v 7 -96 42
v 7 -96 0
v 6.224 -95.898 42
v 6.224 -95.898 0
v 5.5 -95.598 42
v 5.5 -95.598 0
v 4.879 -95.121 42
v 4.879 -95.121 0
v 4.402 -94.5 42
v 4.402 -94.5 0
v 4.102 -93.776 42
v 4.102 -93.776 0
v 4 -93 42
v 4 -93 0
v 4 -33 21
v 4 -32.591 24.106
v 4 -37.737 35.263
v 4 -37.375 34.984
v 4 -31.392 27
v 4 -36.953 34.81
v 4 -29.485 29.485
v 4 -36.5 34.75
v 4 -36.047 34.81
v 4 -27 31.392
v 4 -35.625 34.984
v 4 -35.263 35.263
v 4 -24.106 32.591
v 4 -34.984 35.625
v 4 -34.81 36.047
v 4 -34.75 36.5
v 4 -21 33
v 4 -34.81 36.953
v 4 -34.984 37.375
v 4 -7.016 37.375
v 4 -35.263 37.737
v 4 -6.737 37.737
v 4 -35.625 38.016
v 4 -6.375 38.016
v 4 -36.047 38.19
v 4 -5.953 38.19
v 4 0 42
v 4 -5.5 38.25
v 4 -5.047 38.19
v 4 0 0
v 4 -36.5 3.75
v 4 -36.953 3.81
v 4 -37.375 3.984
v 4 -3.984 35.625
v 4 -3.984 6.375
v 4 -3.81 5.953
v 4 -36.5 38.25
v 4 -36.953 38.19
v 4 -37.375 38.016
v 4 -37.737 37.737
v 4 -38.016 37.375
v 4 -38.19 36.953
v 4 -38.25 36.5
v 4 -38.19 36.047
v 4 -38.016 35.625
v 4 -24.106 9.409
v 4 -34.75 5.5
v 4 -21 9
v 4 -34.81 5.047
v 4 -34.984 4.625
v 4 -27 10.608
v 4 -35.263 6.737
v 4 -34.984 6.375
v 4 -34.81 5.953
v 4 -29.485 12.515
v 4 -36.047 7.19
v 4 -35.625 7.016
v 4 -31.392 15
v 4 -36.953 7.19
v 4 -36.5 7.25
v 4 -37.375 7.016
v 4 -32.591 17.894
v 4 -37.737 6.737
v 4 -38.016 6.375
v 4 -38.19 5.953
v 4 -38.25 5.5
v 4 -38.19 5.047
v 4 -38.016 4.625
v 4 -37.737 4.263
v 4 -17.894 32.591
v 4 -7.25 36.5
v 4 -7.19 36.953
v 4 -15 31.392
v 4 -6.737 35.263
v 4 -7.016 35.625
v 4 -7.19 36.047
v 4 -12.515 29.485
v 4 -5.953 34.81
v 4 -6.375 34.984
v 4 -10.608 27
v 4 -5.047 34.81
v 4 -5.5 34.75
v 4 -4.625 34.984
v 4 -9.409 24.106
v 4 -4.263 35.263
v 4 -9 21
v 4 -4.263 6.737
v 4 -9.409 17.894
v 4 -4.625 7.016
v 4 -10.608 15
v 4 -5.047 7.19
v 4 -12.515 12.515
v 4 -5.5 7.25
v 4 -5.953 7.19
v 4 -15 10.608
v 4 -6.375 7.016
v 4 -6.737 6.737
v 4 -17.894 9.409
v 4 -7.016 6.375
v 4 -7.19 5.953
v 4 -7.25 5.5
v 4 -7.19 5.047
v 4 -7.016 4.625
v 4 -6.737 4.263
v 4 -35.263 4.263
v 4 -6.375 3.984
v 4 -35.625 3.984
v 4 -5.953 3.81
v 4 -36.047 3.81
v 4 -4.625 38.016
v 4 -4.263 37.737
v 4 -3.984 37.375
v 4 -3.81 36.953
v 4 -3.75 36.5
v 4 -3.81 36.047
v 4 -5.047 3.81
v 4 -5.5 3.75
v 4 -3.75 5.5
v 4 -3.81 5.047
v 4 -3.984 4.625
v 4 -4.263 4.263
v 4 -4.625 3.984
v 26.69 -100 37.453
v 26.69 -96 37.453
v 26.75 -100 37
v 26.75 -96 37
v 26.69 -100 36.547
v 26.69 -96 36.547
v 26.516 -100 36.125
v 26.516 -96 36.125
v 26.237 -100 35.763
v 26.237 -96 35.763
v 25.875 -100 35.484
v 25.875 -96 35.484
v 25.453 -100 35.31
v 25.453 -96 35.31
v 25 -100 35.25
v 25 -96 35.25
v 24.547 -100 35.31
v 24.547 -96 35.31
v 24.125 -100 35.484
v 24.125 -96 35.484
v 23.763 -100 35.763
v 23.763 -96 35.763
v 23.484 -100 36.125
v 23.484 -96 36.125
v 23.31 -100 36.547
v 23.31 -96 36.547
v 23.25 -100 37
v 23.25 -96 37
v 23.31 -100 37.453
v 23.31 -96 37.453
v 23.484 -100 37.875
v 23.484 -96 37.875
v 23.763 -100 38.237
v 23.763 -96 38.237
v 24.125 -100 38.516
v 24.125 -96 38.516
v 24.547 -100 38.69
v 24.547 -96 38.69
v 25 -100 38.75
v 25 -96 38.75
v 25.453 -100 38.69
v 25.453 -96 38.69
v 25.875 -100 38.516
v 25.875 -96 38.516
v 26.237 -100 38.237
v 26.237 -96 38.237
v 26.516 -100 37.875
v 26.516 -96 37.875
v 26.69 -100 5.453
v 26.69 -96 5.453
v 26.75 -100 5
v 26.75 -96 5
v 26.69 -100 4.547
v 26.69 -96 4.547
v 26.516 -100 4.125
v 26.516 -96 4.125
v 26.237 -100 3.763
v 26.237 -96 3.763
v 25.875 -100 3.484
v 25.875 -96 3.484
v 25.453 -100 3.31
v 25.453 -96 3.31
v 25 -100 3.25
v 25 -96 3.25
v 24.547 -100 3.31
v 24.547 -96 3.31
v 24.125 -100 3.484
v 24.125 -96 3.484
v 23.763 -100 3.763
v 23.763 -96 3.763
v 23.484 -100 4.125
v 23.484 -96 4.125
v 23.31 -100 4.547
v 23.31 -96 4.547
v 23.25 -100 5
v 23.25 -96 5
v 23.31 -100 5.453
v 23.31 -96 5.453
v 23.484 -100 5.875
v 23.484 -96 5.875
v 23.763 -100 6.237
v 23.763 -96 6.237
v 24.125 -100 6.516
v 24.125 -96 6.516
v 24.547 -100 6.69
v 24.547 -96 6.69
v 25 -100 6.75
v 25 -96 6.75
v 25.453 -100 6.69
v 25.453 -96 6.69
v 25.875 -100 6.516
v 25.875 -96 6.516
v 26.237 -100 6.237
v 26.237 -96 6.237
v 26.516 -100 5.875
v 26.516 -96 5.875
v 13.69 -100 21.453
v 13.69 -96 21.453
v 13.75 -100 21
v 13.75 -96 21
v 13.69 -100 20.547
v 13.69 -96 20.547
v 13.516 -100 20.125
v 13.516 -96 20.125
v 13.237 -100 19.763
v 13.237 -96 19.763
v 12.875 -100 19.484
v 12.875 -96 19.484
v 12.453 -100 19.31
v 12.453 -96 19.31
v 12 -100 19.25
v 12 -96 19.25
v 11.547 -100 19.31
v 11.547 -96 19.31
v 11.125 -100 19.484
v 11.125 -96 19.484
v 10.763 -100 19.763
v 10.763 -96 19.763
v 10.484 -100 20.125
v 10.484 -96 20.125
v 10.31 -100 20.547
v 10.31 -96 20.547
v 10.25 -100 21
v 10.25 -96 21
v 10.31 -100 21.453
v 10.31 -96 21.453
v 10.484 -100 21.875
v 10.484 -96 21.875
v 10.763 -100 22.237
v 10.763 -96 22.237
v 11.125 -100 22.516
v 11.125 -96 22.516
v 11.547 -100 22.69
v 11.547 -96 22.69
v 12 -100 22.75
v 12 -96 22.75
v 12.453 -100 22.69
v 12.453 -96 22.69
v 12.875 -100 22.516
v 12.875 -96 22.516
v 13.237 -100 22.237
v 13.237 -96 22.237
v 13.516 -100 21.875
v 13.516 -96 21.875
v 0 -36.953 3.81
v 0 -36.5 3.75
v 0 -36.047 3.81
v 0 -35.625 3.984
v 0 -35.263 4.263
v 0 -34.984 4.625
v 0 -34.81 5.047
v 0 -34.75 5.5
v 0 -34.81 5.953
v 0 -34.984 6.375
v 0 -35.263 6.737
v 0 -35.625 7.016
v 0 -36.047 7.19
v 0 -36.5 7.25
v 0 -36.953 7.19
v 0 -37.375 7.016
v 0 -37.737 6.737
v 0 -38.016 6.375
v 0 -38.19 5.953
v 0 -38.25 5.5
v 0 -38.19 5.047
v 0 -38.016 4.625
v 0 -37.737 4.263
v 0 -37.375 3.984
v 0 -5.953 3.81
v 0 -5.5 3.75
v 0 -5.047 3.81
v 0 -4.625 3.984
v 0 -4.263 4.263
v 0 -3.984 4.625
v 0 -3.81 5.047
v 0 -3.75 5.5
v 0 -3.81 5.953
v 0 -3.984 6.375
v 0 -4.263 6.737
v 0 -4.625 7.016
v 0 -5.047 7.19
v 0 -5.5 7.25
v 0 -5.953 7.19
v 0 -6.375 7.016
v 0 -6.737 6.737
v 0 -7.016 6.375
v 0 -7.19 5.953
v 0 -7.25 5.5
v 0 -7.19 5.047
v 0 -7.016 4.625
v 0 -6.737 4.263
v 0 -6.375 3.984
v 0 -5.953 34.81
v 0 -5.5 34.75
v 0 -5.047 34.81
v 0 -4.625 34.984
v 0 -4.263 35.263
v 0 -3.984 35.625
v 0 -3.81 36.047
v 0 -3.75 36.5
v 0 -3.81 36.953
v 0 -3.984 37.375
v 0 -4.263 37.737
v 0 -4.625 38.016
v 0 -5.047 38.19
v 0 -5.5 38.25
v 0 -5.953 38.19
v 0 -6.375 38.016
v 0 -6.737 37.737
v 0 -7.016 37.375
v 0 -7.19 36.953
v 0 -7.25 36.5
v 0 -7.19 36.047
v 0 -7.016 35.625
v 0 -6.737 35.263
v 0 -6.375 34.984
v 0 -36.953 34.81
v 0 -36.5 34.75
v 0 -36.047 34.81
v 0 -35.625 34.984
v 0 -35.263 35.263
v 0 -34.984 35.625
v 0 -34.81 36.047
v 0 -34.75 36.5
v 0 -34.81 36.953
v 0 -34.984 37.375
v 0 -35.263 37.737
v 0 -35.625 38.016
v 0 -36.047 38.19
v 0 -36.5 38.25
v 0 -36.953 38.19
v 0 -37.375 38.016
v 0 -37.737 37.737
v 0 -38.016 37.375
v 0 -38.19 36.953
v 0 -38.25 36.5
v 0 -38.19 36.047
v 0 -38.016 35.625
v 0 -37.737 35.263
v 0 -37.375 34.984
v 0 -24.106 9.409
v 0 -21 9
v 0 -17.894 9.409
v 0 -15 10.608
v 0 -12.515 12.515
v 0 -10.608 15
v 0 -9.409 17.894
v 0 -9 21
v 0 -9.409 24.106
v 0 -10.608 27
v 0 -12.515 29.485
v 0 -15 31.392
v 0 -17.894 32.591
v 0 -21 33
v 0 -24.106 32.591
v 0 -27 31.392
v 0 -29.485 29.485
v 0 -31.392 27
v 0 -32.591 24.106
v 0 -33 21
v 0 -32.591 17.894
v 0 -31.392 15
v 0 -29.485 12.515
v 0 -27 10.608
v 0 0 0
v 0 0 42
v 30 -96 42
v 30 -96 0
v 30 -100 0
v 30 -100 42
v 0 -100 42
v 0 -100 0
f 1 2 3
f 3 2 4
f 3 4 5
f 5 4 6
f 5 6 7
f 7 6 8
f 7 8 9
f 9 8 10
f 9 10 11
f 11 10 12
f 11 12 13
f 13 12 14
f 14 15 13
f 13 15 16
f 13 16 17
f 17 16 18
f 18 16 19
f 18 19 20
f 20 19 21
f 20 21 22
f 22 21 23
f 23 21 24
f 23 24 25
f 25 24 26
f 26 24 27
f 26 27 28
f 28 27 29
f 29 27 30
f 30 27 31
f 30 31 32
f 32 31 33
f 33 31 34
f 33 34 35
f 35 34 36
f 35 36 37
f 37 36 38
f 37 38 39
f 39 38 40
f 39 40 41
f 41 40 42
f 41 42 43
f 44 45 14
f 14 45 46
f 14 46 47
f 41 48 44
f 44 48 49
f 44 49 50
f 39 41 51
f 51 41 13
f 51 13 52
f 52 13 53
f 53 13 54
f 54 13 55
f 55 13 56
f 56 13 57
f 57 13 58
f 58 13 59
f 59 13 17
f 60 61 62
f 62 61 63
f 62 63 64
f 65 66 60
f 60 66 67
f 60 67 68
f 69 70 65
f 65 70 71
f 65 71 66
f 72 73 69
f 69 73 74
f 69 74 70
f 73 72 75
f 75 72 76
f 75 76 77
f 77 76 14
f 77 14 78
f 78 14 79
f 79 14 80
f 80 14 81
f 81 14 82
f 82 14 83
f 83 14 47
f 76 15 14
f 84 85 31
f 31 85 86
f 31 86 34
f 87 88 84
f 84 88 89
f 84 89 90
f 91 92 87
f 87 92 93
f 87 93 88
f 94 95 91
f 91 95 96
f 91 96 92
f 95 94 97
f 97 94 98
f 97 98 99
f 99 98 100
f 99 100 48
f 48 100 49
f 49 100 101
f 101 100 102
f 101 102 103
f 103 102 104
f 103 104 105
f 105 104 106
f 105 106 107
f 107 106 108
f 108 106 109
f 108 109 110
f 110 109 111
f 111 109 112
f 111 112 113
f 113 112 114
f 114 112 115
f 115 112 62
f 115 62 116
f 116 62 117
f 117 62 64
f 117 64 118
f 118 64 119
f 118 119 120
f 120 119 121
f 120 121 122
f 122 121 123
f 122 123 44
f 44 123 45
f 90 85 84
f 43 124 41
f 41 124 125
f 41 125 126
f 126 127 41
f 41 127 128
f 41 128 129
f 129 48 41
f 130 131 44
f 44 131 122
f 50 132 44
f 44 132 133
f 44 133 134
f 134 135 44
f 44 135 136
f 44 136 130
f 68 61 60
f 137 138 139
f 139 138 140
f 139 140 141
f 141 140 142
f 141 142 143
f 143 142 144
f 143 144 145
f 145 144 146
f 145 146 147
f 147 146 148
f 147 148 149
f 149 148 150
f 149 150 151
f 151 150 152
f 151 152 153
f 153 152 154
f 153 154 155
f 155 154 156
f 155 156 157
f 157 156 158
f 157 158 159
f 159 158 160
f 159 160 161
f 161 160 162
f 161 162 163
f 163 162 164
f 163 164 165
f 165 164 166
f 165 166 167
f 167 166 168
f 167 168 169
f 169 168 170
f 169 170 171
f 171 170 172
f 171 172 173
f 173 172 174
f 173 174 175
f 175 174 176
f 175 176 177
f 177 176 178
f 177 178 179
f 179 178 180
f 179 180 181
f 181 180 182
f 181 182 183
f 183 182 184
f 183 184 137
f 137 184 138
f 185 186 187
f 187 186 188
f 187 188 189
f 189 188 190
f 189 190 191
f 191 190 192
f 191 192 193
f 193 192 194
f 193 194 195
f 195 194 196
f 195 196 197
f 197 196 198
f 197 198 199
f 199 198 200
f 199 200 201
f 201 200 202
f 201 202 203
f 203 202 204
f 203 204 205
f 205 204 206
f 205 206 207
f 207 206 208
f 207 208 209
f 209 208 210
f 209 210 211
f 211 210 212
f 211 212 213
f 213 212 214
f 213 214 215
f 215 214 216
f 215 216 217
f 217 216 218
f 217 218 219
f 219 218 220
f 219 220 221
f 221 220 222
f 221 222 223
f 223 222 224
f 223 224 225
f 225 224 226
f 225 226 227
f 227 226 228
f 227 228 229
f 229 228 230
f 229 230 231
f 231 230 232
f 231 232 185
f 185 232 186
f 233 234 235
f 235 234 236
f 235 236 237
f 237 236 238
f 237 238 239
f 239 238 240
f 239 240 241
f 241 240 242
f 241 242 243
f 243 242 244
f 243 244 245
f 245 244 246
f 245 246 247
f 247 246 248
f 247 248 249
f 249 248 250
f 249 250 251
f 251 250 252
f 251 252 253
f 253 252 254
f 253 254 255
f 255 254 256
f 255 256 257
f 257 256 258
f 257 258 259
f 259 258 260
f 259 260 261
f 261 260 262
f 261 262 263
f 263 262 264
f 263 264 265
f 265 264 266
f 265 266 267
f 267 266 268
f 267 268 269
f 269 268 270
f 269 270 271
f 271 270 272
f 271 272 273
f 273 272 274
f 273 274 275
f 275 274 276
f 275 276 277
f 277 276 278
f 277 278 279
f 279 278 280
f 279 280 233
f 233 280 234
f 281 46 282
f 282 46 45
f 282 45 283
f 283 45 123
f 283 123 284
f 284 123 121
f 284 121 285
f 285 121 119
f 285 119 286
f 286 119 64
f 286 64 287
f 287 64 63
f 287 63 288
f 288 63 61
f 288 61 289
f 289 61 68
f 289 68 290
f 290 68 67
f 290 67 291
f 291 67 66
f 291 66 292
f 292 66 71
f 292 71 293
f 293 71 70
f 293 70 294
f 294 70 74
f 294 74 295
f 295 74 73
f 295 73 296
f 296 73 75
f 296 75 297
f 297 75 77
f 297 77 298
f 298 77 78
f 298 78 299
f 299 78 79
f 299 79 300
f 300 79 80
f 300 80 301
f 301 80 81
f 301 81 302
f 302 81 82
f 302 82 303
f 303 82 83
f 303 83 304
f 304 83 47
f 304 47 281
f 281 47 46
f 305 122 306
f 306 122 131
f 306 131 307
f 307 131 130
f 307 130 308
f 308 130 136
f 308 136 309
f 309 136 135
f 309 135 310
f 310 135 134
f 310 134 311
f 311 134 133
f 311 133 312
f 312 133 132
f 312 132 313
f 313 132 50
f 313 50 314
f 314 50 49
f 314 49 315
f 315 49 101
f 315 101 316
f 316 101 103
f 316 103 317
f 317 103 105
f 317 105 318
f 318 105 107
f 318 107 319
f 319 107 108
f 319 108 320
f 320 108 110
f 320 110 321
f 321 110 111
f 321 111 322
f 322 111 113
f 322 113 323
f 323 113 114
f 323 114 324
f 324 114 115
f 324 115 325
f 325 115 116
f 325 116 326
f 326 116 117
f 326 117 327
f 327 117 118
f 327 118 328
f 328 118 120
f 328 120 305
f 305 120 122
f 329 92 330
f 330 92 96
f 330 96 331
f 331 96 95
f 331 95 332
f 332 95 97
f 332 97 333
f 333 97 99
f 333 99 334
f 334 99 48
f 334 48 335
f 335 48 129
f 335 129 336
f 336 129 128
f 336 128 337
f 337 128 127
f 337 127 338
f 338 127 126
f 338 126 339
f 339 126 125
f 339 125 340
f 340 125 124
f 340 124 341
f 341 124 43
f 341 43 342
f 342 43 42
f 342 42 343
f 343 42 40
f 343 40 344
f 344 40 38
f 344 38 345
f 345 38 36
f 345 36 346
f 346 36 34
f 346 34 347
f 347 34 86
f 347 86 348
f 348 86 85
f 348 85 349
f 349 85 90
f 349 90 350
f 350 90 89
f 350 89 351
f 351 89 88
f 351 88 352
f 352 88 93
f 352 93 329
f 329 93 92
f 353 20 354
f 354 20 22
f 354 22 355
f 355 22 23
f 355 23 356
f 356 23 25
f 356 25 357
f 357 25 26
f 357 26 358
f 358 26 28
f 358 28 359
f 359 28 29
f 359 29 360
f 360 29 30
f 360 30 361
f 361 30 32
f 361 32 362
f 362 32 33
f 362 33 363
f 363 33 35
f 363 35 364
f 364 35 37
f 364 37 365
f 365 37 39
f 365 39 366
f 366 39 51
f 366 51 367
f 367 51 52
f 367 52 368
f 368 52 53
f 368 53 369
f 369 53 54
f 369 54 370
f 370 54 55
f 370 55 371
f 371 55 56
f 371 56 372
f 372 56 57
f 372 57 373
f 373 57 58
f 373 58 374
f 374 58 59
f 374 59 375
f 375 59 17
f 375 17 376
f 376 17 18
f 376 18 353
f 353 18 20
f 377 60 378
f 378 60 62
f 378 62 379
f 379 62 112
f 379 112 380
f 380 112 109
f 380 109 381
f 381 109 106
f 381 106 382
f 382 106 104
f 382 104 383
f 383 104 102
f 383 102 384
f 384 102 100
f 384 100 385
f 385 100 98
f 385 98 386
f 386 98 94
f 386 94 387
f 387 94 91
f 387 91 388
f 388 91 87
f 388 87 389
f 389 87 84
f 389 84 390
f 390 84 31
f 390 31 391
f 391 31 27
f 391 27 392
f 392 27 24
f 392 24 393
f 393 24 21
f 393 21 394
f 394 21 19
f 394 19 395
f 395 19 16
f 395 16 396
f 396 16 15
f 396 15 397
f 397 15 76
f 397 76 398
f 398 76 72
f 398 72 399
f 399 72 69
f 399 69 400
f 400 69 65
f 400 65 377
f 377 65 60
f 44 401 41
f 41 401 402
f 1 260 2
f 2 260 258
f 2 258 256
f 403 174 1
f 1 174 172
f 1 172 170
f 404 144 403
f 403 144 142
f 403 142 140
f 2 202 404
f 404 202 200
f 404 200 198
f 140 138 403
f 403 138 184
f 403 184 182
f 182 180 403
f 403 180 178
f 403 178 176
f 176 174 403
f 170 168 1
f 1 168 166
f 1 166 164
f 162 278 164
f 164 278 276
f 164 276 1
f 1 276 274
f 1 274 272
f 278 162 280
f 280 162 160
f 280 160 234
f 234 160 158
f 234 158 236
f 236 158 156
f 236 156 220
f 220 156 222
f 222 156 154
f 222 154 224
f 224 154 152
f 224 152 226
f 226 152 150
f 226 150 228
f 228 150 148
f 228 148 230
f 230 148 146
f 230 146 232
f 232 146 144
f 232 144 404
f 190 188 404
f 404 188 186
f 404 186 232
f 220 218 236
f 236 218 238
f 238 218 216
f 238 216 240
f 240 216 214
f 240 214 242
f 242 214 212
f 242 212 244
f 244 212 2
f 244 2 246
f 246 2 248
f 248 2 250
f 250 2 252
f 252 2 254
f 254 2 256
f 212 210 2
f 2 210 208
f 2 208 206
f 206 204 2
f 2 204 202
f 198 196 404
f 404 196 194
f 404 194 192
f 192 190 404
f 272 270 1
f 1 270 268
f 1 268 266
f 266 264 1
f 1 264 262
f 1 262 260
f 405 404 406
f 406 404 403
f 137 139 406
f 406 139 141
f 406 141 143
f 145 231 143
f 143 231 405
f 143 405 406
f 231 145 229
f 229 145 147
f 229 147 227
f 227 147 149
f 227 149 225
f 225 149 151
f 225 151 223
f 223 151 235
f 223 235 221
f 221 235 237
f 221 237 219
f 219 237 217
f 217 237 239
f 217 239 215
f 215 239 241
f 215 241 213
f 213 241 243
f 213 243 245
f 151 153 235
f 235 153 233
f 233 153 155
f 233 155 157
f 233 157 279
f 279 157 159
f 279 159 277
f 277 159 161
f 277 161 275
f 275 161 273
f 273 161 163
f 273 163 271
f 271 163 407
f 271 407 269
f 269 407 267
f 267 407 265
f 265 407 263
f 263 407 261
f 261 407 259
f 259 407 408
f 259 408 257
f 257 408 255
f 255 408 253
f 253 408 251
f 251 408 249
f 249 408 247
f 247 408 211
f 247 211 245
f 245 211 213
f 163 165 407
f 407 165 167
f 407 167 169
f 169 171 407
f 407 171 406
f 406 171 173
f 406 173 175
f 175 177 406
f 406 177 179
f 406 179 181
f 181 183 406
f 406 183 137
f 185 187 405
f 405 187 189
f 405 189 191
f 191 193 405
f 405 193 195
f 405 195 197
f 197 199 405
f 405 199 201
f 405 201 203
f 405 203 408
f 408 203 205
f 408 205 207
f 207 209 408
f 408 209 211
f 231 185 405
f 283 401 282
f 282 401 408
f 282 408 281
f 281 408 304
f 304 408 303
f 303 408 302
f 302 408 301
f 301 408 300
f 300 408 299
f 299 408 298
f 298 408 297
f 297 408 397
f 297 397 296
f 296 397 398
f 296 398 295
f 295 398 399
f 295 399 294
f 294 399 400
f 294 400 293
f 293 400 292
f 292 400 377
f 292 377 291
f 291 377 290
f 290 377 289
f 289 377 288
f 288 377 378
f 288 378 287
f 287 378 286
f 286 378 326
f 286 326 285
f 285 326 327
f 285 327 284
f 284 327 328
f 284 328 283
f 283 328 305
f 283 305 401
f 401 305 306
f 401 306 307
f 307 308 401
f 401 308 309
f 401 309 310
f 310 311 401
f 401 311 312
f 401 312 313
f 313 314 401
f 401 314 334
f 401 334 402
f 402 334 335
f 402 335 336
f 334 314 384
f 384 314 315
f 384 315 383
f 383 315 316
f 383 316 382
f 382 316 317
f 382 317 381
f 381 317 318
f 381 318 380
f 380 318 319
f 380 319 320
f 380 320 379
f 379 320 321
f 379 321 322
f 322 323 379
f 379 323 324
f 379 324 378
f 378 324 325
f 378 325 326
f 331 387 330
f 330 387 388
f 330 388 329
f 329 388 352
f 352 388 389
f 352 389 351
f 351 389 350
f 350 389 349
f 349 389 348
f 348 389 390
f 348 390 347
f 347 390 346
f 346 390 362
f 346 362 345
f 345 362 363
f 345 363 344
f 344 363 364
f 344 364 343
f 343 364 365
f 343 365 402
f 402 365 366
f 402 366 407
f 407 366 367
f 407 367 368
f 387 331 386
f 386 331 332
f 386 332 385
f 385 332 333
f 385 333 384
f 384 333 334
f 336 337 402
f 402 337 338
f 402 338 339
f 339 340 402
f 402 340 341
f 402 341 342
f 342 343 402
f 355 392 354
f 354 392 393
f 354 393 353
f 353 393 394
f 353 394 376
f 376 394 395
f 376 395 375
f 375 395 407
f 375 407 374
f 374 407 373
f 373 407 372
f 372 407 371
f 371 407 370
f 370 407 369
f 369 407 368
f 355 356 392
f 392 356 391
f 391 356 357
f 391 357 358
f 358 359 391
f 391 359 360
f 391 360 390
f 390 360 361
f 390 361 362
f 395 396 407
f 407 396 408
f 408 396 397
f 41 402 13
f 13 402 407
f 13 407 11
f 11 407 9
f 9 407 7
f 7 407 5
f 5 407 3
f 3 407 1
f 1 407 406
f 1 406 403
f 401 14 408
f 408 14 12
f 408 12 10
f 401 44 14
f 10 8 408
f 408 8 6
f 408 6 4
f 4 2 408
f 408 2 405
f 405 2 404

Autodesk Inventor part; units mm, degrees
ref_plane "YZ Plane" through (0, 0, 0) normal (1, 0, 0) x (0, 1, 0)
ref_plane "XZ Plane" through (0, 0, 0) normal (0, 1, 0) x (-1, 0, 0)
ref_plane "XY Plane" through (0, 0, 0) normal (0, 0, 1) x (1, 0, 0)
sketch "Sketch1" plane through (0, 0, 0) normal (0, 0, 1) x (1, 0, 0)
  line L0 (0, 0) -> (0, -100)
  line L1 (0, -100) -> (30, -100)
  line L2 (30, -100) -> (30, -96)
  line L3 (30, -96) -> (4, -96)
  line L4 (4, -96) -> (4, 0)
  line L5 (4, 0) -> (0, 0)
  dimension "d0" = 100
  dimension "d1" = 30
  dimension "d2" = 4
  dimension "d3" = 26
extrude "Extrusion1" add sketch "Sketch1" along normal blind 42
sketch "Sketch2" plane through (4, -96, 0) normal (1, 0, 0) x (0, 0, -1)
  line L0 (-42, 96) -> (-42, -4) projected
  line L1 (0, 96) -> (0, -4) projected
  line L2 (-42, 96) -> (0, 96)
  line L3 (0, 96) -> (0, 0)
  line L4 (0, 0) -> (-42, 0)
  line L5 (-42, 0) -> (-42, 96)
  circle A0 centre (-36.5, 90.5) radius 1.75
  circle A1 centre (-5.5, 90.5) radius 1.75
  circle A2 centre (-36.5, 59.5) radius 1.75
  circle A3 centre (-5.5, 59.5) radius 1.75
  circle A4 centre (-21, 75) radius 12
  dimension "d6" = 96
  dimension "d7" = 3.5
  dimension "d8" = 5.5
  dimension "d9" = 5.5
  dimension "d10" = 3.5
  dimension "d11" = 5.5
  dimension "d12" = 5.5
  dimension "d14" = 3.5
  dimension "d15" = 3.5
  dimension "d16" = 31
  dimension "d17" = 31
  dimension "d18" = 5.5
  dimension "d19" = 5.5
  dimension "d20" = 24
  dimension "d21" = 21
  dimension "d22" = 15.5
extrude "Extrusion2" cut sketch "Sketch2" against normal blind 4 contours A0 | A1 | A2 | A3 | A4
sketch "Sketch3" plane through (4, -96, 0) normal (0, 1, 0) x (1, 0, 0)
  line L0 (-4, 0) -> (-4, -42) projected
  line L1 (26, 0) -> (26, -42) projected
  line L2 (-4, 0) -> (26, 0)
  line L3 (26, 0) -> (26, -42)
  line L4 (26, -42) -> (-4, -42)
  line L5 (-4, -42) -> (-4, 0)
  circle A0 centre (21, -5) radius 1.75
  circle A1 centre (21, -37) radius 1.75
  circle A2 centre (8, -21) radius 1.75
  dimension "d25" = 3.5
  dimension "d26" = 3.5
  dimension "d27" = 3.5
  dimension "d28" = 5
  dimension "d29" = 5
  dimension "d30" = 5
  dimension "d31" = 5
  dimension "d32" = 12
  dimension "d33" = 21
extrude "Extrusion3" cut sketch "Sketch3" against normal blind 4 contours A0 | A1 | A2
fillet "Fillet1" radius 3 1 edges at (4, -96, 21)
properties part number "Suporte Esquerdo"
